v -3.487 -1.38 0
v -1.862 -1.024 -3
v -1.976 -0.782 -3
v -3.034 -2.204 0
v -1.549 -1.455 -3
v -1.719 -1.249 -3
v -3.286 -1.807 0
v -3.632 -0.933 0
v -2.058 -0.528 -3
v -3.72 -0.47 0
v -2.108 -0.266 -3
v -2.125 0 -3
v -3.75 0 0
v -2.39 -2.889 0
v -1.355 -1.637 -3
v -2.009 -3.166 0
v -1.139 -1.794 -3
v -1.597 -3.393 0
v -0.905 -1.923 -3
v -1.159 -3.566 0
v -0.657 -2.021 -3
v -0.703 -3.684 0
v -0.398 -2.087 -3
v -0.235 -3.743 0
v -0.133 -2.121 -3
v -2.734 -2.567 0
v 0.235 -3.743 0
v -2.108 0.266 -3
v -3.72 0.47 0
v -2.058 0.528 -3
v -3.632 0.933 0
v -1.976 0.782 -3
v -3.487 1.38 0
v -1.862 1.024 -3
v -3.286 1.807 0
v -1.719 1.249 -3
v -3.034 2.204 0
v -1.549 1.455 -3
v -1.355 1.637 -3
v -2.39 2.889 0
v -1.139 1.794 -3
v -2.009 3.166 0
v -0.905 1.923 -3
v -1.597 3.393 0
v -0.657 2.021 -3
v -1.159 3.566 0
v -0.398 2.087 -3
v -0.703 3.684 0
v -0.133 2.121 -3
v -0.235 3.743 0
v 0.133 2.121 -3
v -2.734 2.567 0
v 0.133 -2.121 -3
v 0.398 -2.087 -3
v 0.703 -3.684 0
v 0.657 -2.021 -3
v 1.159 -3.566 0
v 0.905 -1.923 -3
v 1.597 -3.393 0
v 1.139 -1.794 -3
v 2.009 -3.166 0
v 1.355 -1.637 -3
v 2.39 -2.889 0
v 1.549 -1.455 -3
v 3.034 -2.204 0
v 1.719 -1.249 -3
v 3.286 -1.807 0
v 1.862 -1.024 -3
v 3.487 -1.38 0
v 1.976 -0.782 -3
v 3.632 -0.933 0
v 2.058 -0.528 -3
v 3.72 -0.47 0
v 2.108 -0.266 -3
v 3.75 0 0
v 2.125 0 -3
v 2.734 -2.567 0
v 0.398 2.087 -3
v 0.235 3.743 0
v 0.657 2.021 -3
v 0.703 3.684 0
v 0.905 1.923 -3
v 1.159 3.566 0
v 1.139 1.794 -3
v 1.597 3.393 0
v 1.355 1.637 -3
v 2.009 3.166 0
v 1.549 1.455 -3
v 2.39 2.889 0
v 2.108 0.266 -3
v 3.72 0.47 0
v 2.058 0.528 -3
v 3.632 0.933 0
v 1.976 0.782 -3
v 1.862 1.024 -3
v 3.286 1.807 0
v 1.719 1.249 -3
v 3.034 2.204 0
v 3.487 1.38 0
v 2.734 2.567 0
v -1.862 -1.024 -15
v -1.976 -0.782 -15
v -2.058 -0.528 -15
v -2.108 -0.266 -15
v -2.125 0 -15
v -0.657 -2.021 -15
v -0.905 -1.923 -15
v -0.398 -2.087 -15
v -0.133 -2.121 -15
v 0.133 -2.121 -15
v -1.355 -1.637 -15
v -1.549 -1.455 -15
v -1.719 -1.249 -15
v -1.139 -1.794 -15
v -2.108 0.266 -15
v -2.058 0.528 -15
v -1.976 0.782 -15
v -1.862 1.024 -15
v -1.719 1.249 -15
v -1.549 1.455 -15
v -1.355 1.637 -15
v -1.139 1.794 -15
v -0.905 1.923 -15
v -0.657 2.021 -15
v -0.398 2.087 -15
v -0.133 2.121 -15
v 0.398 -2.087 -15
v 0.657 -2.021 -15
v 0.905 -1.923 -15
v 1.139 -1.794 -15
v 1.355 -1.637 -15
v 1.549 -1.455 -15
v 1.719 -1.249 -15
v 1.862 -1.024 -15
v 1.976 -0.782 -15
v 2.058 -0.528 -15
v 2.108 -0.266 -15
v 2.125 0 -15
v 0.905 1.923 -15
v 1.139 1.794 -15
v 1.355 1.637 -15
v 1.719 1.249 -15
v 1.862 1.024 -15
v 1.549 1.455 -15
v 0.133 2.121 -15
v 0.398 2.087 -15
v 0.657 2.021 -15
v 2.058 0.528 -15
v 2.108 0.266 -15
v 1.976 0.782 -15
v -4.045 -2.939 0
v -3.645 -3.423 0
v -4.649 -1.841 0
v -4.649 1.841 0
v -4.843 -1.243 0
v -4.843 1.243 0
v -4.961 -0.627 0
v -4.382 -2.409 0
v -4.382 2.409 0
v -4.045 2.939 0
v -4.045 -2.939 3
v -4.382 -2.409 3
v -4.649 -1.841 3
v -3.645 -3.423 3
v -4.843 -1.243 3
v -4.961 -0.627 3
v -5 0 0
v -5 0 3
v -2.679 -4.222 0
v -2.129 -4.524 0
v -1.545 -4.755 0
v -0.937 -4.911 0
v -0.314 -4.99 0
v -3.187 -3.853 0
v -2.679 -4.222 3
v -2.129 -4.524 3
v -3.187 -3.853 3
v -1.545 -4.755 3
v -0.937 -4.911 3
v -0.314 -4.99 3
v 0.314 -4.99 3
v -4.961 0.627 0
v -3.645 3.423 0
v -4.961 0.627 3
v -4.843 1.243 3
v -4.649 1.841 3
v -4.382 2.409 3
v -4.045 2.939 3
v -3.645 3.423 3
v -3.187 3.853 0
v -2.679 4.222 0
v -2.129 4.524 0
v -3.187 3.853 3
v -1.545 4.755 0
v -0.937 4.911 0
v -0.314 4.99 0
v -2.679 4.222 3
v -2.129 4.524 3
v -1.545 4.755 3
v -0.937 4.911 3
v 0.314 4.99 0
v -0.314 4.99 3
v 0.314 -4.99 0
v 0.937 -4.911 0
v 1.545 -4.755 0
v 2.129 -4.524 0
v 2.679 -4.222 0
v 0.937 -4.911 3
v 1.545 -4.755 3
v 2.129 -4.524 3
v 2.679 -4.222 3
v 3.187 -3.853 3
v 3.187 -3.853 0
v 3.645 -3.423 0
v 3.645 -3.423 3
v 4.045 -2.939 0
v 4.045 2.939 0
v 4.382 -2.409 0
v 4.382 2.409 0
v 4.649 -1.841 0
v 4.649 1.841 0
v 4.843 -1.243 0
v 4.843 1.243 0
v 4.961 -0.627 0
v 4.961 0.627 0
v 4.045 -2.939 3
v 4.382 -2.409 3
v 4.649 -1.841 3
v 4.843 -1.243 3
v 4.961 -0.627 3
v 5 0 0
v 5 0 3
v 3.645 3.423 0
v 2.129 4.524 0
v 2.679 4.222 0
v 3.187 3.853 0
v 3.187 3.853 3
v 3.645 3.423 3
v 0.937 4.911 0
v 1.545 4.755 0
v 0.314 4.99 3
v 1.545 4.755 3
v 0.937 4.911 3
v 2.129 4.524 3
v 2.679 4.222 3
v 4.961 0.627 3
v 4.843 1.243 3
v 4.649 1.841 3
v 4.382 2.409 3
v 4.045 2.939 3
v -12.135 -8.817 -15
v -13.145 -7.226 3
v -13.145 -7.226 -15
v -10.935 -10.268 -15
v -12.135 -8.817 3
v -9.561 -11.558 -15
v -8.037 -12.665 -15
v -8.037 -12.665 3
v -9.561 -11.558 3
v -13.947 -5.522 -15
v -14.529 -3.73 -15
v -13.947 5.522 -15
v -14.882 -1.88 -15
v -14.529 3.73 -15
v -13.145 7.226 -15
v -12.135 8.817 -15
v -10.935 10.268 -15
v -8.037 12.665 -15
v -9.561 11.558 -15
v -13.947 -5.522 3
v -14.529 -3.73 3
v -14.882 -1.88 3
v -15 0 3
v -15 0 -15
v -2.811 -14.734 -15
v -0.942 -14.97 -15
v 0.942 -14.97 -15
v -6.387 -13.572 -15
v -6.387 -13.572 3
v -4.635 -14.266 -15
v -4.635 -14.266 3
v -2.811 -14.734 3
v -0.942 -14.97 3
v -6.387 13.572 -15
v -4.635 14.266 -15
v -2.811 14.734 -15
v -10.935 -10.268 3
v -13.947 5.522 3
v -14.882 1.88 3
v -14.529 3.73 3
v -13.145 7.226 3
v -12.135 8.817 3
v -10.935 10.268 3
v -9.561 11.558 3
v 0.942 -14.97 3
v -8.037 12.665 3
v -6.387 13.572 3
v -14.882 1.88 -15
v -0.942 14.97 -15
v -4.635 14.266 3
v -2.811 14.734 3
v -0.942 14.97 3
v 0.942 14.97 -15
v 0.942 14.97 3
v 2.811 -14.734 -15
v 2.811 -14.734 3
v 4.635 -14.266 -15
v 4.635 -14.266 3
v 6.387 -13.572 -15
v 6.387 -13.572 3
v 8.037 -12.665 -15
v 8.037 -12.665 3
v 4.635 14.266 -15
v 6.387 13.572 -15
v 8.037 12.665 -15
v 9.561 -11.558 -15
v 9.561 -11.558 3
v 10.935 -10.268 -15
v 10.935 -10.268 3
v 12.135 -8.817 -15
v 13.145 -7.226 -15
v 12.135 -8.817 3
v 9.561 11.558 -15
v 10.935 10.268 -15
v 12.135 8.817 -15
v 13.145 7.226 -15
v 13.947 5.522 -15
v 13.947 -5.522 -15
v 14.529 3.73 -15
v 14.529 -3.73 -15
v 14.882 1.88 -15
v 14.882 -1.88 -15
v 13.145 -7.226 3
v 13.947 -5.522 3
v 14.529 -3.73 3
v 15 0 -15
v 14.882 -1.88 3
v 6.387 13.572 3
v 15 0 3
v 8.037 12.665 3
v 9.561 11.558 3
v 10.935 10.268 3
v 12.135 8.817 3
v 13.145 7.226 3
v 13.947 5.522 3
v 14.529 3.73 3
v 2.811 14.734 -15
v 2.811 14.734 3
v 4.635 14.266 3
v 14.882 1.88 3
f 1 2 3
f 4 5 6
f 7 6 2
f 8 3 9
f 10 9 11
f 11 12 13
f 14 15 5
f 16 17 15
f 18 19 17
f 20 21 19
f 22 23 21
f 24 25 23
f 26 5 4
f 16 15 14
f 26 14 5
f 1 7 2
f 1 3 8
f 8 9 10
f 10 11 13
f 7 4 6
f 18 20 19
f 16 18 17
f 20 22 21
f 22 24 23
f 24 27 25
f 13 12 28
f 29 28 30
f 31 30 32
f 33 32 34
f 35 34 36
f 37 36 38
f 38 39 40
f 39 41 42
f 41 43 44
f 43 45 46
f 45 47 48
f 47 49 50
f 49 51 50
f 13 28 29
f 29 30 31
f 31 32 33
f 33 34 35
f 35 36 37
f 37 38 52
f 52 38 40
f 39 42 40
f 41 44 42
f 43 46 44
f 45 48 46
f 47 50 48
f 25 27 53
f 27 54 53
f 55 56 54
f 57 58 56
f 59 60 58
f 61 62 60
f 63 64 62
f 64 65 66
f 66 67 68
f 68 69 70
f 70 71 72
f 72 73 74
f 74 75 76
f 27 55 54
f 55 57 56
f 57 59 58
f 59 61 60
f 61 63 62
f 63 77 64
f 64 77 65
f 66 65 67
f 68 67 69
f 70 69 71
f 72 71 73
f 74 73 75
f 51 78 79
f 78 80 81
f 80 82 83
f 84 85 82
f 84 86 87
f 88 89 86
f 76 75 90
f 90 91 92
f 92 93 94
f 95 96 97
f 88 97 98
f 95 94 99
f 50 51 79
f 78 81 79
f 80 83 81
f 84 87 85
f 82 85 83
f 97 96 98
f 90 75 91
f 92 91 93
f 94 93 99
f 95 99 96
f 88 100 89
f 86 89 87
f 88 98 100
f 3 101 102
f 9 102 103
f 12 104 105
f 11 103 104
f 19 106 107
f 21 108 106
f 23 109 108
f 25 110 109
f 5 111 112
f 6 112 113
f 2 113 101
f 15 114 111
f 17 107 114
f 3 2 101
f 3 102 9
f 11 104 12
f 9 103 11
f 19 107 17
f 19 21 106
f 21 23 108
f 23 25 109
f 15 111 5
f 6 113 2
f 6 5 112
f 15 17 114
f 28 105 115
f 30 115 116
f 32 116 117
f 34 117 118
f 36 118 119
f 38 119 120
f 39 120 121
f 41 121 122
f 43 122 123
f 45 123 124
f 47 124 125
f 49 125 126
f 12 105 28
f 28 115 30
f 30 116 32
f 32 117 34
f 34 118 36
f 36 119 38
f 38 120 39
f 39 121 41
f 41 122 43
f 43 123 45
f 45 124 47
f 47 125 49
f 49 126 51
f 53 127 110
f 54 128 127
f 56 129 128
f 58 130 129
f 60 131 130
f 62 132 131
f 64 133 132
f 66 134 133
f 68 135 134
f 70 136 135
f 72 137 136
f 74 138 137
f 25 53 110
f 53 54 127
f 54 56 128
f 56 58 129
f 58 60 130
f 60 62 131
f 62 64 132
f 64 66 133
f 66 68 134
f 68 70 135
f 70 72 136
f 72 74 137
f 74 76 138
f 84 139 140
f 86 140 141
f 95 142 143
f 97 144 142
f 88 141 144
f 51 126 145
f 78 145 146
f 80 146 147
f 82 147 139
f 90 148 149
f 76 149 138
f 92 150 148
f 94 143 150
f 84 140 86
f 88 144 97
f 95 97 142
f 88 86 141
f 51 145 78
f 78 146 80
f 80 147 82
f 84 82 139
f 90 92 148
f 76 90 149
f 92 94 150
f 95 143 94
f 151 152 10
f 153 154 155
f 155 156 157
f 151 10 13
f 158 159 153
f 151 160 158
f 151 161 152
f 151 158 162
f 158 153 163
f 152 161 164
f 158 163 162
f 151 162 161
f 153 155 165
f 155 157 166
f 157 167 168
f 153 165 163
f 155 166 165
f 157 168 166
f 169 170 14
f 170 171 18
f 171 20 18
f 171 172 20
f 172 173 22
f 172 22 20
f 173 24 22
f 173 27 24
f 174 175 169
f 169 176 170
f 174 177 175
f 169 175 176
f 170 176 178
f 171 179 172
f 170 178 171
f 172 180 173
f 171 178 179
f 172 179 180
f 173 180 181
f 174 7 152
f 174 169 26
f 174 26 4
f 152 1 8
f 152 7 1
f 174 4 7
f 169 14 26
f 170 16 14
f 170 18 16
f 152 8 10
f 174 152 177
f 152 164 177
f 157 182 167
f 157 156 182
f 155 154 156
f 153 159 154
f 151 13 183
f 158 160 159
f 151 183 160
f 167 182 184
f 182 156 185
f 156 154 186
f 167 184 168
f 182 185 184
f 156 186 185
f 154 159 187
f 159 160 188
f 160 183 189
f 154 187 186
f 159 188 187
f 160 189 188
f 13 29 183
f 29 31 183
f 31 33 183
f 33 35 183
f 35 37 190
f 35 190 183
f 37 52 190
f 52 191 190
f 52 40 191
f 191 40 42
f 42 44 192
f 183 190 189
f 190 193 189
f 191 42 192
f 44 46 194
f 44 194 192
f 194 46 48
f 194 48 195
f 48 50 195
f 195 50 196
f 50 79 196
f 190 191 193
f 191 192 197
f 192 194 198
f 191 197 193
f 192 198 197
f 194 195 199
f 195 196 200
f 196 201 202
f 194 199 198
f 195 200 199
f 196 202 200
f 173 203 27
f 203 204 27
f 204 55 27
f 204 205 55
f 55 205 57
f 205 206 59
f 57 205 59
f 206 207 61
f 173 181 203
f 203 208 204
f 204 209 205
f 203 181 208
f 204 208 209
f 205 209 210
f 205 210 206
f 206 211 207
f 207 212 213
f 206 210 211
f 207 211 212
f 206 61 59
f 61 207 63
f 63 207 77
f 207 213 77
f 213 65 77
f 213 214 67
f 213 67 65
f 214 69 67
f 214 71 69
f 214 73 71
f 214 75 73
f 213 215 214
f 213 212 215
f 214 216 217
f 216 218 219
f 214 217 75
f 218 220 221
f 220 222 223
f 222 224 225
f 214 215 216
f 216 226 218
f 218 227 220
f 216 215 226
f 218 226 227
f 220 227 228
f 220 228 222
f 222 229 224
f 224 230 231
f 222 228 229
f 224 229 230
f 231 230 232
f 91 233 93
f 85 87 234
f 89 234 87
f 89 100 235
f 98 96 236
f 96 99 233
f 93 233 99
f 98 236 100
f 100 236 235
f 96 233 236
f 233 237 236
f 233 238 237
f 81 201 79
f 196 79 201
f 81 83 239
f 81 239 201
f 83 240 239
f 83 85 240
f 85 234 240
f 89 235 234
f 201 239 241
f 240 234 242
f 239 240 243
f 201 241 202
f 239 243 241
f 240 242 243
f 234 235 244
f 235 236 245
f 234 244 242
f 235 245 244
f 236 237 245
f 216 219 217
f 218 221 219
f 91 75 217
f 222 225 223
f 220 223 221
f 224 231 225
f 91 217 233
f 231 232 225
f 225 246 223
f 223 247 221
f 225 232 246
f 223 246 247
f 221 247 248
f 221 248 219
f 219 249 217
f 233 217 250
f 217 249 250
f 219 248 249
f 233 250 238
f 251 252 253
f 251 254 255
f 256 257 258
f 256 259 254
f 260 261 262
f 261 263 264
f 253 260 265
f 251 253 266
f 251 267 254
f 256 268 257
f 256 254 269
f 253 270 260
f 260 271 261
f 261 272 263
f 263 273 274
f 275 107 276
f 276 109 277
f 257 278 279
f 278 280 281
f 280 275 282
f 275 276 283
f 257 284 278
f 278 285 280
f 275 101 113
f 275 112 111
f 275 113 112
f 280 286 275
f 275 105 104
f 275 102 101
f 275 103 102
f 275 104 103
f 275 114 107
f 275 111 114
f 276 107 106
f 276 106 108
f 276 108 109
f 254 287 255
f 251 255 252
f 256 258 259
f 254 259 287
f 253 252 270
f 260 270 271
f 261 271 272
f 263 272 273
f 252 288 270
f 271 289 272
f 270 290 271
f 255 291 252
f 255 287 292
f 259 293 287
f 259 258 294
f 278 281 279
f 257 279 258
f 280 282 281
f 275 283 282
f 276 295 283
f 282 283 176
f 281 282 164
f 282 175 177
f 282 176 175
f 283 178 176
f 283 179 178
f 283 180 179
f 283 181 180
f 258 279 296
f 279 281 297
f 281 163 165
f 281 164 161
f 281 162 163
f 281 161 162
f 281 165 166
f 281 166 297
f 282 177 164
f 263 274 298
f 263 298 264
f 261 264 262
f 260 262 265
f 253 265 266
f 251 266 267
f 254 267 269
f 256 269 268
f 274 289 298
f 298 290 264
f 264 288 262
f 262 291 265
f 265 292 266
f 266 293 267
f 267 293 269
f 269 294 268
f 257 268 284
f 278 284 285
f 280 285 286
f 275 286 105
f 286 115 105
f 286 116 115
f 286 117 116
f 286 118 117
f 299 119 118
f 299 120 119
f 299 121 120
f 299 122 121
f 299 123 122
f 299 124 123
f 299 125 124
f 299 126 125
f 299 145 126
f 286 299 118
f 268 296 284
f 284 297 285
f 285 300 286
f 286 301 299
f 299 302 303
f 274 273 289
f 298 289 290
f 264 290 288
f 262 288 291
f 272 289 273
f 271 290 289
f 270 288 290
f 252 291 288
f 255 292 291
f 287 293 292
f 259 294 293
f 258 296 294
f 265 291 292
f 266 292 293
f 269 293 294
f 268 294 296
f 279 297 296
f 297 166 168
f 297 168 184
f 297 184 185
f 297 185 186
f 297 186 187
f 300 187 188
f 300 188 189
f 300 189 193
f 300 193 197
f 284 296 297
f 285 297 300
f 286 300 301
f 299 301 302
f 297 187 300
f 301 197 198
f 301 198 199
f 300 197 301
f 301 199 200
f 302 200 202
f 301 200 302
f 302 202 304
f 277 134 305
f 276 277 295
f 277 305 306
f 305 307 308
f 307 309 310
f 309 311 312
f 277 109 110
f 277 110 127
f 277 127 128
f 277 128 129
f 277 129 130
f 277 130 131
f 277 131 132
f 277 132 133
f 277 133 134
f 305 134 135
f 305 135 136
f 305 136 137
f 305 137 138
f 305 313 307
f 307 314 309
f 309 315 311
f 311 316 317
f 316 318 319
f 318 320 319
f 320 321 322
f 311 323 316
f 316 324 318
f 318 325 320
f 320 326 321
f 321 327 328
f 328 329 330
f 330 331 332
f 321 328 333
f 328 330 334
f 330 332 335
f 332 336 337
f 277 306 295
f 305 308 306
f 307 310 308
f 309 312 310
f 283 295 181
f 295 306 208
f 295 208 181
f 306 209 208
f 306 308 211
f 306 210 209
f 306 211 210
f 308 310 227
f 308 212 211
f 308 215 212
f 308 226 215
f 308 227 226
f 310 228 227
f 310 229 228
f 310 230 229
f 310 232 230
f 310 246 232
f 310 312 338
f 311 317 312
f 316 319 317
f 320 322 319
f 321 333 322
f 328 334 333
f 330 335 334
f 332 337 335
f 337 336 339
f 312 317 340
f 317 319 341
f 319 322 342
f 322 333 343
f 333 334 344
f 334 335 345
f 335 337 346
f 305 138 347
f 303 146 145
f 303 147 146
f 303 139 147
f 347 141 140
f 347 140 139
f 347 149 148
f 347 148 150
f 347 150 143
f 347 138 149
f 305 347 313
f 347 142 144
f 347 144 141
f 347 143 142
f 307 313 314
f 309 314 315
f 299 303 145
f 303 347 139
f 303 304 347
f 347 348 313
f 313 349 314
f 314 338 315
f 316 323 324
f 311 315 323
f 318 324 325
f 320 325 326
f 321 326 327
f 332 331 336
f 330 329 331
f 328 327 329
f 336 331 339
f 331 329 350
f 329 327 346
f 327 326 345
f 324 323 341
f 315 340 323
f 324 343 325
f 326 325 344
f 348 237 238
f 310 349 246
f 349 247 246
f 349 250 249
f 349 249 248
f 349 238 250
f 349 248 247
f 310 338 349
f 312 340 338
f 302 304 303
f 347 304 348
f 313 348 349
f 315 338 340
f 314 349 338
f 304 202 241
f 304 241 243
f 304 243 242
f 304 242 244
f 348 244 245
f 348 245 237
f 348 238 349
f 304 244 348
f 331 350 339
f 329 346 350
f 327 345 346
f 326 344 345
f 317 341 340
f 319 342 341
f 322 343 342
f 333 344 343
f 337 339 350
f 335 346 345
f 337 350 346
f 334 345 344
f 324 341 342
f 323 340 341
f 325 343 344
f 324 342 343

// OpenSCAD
$fn = 50;


difference() {
	union() {
		translate(v = [0, 0, -15.0000000000]) {
			cylinder(h = 18, r = 15.0000000000);
		}
	}
	union() {
		translate(v = [0, 0, 0]) {
			rotate(a = [0, 0, 0]) {
				difference() {
					union() {
						translate(v = [0, 0, -18.0000000000]) {
							cylinder(h = 18, r = 2.0000000000);
						}
						translate(v = [0, 0, -3]) {
							cylinder(h = 3, r1 = 2.1250000000, r2 = 3.7500000000);
						}
						translate(v = [0, 0, -18.0000000000]) {
							cylinder(h = 18, r = 2.1250000000);
						}
						translate(v = [0, 0, -18.0000000000]) {
							cylinder(h = 18, r = 2.0000000000);
						}
					}
					union();
				}
			}
		}
		#cylinder(h = 3, r = 5.0000000000);
	}
}
